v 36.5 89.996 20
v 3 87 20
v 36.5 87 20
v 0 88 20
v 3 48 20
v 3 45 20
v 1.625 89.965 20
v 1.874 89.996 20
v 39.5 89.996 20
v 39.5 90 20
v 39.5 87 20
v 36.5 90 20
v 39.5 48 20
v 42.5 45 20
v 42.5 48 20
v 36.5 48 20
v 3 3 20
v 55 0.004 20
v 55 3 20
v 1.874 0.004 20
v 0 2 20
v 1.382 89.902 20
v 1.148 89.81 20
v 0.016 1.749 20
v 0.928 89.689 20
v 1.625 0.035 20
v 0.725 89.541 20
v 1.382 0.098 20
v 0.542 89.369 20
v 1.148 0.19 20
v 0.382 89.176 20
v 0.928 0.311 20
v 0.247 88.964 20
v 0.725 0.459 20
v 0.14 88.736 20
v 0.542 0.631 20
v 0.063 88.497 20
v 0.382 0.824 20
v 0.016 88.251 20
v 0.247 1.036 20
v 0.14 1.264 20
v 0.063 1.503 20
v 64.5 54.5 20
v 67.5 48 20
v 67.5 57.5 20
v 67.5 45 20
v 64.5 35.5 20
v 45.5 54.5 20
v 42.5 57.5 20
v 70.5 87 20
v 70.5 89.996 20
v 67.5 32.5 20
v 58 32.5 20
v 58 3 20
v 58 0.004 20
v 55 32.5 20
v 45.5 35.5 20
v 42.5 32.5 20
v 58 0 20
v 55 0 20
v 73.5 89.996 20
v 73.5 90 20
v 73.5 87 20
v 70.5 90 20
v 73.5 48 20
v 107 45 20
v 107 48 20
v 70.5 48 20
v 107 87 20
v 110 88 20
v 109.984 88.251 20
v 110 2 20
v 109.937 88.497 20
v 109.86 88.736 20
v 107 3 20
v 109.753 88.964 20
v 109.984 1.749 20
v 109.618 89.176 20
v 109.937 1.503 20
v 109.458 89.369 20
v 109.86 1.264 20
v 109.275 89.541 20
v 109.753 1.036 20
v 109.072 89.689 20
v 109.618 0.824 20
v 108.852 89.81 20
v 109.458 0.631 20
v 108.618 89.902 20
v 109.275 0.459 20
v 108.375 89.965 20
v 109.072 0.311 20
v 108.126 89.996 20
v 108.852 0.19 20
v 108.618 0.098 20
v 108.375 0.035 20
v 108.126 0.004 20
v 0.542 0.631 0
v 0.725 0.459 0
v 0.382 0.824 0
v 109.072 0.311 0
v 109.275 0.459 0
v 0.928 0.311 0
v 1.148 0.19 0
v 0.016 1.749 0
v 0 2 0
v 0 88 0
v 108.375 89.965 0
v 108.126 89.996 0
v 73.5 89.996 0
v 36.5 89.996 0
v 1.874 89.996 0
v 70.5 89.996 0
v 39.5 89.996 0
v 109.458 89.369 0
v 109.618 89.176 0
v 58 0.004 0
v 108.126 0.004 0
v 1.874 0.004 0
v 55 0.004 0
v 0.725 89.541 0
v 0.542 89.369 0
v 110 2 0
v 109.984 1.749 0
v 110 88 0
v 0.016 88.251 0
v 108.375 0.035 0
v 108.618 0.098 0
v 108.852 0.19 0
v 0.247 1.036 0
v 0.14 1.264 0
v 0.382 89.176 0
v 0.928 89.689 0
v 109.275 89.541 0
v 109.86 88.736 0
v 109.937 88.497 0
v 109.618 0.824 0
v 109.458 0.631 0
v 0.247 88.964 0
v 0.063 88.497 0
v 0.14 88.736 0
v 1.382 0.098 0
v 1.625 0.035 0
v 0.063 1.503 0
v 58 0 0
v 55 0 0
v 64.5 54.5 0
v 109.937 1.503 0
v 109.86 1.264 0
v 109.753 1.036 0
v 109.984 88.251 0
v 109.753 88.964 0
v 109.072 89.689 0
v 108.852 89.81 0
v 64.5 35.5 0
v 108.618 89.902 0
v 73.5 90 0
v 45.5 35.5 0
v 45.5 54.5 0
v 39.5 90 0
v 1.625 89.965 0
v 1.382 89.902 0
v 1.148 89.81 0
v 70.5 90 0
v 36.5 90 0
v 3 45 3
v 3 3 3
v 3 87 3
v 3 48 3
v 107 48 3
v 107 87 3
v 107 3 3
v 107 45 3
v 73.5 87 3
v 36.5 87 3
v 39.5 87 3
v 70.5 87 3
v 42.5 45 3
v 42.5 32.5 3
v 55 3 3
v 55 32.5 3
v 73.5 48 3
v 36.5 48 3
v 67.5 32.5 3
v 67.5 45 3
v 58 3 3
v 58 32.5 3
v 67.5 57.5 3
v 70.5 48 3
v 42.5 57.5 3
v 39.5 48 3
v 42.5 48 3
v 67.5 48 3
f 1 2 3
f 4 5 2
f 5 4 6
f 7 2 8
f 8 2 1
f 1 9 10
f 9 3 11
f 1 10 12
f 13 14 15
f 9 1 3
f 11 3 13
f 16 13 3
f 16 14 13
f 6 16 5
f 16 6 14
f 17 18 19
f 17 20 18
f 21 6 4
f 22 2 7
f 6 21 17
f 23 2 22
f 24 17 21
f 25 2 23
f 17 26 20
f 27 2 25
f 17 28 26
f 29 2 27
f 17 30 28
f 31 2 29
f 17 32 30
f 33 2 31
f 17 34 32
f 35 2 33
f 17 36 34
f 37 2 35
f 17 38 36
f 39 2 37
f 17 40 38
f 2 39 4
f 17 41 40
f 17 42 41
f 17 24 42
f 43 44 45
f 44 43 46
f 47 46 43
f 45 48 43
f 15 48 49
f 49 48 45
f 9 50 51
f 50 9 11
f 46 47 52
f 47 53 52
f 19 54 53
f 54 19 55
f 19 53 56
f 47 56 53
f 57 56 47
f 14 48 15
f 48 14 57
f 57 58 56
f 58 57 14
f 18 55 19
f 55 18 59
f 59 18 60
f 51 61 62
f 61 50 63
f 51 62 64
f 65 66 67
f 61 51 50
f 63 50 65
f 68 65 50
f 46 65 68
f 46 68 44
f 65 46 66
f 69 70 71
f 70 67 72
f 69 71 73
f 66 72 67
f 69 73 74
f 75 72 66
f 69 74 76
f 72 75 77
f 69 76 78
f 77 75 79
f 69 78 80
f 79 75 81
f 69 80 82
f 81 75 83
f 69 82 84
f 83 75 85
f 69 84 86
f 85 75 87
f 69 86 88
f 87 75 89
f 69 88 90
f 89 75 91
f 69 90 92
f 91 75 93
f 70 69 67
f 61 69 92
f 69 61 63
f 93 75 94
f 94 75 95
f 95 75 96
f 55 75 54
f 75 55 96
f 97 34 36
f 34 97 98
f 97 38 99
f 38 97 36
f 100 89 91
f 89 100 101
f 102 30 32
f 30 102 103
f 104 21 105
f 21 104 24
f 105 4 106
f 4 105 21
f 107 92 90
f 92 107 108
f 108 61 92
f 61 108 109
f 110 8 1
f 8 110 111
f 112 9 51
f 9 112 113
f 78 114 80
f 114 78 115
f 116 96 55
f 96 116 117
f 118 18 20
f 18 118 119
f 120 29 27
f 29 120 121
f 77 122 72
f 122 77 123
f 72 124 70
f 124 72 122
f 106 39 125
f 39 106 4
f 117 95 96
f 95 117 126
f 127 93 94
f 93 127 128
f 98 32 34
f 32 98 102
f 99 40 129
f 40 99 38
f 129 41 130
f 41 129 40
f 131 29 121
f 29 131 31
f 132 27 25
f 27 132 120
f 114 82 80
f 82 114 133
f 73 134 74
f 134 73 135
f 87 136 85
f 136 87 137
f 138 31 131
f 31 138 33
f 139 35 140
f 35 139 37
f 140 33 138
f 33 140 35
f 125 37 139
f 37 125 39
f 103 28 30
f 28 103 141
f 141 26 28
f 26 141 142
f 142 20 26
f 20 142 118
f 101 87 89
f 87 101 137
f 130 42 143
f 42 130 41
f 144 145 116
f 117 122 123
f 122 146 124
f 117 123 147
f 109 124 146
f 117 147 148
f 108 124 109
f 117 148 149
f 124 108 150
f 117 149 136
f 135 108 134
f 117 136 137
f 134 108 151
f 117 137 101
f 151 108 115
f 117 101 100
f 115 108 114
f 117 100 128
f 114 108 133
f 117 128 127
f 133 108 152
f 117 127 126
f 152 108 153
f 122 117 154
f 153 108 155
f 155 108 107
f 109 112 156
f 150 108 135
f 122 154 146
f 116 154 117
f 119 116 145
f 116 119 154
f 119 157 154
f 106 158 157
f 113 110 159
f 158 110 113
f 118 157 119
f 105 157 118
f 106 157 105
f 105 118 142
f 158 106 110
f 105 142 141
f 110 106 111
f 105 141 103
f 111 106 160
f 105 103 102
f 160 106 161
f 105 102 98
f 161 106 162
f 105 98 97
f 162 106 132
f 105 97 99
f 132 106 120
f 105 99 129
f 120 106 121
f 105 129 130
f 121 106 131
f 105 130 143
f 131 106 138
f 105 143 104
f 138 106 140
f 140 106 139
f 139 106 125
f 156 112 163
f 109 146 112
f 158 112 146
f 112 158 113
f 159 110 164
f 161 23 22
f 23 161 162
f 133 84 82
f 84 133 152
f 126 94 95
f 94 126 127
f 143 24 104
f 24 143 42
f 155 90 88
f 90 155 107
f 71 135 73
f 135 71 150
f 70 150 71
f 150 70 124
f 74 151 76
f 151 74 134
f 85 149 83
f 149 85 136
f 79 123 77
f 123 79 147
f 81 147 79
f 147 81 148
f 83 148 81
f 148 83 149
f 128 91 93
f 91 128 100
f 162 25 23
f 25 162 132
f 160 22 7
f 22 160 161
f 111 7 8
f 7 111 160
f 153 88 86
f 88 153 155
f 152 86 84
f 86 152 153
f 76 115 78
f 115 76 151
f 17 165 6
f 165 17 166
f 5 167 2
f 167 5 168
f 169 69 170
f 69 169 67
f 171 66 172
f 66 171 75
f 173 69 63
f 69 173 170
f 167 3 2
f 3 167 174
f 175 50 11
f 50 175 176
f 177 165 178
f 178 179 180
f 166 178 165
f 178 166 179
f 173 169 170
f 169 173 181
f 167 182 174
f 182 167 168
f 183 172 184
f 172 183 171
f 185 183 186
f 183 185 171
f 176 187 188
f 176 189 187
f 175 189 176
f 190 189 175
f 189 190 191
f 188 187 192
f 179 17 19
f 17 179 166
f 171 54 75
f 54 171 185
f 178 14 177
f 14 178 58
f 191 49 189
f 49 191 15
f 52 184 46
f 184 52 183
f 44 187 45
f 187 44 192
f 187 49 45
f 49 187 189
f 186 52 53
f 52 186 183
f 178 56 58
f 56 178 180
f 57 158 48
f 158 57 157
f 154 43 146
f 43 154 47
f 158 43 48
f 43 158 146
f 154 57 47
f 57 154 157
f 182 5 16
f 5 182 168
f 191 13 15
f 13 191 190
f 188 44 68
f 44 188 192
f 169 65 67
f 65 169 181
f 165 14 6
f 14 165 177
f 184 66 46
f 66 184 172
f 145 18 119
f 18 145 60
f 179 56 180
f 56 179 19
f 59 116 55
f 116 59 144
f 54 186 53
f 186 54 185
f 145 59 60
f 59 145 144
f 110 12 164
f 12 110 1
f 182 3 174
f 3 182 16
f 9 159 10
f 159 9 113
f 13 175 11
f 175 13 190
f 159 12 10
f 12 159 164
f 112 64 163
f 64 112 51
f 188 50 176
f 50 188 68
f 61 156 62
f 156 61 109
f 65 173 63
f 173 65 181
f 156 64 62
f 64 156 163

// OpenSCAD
magnetHoleWidth = 19;
width = 90;
length = 110;
height = 20;
wallThickness = 3;
floorThickness = 3;

difference() {
    union() {
        difference() {

            $fn=50;
            minkowski()
            {
              translate([2,2,0])
                cube([length-4, width-4, height - 1]);
              cylinder(r=2,h=1);
            }
            translate([wallThickness, wallThickness, floorThickness])
                cube([length - wallThickness * 2, width - wallThickness * 2, height]);
        }
        difference() {
            translate([length/2 - (magnetHoleWidth + wallThickness * 2)/2, width/2 - (magnetHoleWidth + wallThickness * 2)/2, 0])
                cube([magnetHoleWidth + wallThickness * 2, magnetHoleWidth + wallThickness * 2, height]);
            translate([length/2 - magnetHoleWidth/2, width/2 - magnetHoleWidth/2, 0])
                cube([magnetHoleWidth, magnetHoleWidth, height]);
        }
        translate([0, width/2, 0])
            cube([length, wallThickness, height]);
        translate([length/2, 0, 0])
            cube([wallThickness, width/2, height]);
        translate([length/2 - (magnetHoleWidth + 2 * wallThickness)/2 - wallThickness * 2, width/2, 0])
            cube([wallThickness, width/2, height]);
        translate([length/2 + (magnetHoleWidth)/2 + wallThickness * 2, width/2, 0])
            cube([wallThickness, width/2, height]);
    }
    translate([length/2 - magnetHoleWidth/2, width/2 - magnetHoleWidth/2, 0])
        cube([magnetHoleWidth, magnetHoleWidth, 200]);
}
